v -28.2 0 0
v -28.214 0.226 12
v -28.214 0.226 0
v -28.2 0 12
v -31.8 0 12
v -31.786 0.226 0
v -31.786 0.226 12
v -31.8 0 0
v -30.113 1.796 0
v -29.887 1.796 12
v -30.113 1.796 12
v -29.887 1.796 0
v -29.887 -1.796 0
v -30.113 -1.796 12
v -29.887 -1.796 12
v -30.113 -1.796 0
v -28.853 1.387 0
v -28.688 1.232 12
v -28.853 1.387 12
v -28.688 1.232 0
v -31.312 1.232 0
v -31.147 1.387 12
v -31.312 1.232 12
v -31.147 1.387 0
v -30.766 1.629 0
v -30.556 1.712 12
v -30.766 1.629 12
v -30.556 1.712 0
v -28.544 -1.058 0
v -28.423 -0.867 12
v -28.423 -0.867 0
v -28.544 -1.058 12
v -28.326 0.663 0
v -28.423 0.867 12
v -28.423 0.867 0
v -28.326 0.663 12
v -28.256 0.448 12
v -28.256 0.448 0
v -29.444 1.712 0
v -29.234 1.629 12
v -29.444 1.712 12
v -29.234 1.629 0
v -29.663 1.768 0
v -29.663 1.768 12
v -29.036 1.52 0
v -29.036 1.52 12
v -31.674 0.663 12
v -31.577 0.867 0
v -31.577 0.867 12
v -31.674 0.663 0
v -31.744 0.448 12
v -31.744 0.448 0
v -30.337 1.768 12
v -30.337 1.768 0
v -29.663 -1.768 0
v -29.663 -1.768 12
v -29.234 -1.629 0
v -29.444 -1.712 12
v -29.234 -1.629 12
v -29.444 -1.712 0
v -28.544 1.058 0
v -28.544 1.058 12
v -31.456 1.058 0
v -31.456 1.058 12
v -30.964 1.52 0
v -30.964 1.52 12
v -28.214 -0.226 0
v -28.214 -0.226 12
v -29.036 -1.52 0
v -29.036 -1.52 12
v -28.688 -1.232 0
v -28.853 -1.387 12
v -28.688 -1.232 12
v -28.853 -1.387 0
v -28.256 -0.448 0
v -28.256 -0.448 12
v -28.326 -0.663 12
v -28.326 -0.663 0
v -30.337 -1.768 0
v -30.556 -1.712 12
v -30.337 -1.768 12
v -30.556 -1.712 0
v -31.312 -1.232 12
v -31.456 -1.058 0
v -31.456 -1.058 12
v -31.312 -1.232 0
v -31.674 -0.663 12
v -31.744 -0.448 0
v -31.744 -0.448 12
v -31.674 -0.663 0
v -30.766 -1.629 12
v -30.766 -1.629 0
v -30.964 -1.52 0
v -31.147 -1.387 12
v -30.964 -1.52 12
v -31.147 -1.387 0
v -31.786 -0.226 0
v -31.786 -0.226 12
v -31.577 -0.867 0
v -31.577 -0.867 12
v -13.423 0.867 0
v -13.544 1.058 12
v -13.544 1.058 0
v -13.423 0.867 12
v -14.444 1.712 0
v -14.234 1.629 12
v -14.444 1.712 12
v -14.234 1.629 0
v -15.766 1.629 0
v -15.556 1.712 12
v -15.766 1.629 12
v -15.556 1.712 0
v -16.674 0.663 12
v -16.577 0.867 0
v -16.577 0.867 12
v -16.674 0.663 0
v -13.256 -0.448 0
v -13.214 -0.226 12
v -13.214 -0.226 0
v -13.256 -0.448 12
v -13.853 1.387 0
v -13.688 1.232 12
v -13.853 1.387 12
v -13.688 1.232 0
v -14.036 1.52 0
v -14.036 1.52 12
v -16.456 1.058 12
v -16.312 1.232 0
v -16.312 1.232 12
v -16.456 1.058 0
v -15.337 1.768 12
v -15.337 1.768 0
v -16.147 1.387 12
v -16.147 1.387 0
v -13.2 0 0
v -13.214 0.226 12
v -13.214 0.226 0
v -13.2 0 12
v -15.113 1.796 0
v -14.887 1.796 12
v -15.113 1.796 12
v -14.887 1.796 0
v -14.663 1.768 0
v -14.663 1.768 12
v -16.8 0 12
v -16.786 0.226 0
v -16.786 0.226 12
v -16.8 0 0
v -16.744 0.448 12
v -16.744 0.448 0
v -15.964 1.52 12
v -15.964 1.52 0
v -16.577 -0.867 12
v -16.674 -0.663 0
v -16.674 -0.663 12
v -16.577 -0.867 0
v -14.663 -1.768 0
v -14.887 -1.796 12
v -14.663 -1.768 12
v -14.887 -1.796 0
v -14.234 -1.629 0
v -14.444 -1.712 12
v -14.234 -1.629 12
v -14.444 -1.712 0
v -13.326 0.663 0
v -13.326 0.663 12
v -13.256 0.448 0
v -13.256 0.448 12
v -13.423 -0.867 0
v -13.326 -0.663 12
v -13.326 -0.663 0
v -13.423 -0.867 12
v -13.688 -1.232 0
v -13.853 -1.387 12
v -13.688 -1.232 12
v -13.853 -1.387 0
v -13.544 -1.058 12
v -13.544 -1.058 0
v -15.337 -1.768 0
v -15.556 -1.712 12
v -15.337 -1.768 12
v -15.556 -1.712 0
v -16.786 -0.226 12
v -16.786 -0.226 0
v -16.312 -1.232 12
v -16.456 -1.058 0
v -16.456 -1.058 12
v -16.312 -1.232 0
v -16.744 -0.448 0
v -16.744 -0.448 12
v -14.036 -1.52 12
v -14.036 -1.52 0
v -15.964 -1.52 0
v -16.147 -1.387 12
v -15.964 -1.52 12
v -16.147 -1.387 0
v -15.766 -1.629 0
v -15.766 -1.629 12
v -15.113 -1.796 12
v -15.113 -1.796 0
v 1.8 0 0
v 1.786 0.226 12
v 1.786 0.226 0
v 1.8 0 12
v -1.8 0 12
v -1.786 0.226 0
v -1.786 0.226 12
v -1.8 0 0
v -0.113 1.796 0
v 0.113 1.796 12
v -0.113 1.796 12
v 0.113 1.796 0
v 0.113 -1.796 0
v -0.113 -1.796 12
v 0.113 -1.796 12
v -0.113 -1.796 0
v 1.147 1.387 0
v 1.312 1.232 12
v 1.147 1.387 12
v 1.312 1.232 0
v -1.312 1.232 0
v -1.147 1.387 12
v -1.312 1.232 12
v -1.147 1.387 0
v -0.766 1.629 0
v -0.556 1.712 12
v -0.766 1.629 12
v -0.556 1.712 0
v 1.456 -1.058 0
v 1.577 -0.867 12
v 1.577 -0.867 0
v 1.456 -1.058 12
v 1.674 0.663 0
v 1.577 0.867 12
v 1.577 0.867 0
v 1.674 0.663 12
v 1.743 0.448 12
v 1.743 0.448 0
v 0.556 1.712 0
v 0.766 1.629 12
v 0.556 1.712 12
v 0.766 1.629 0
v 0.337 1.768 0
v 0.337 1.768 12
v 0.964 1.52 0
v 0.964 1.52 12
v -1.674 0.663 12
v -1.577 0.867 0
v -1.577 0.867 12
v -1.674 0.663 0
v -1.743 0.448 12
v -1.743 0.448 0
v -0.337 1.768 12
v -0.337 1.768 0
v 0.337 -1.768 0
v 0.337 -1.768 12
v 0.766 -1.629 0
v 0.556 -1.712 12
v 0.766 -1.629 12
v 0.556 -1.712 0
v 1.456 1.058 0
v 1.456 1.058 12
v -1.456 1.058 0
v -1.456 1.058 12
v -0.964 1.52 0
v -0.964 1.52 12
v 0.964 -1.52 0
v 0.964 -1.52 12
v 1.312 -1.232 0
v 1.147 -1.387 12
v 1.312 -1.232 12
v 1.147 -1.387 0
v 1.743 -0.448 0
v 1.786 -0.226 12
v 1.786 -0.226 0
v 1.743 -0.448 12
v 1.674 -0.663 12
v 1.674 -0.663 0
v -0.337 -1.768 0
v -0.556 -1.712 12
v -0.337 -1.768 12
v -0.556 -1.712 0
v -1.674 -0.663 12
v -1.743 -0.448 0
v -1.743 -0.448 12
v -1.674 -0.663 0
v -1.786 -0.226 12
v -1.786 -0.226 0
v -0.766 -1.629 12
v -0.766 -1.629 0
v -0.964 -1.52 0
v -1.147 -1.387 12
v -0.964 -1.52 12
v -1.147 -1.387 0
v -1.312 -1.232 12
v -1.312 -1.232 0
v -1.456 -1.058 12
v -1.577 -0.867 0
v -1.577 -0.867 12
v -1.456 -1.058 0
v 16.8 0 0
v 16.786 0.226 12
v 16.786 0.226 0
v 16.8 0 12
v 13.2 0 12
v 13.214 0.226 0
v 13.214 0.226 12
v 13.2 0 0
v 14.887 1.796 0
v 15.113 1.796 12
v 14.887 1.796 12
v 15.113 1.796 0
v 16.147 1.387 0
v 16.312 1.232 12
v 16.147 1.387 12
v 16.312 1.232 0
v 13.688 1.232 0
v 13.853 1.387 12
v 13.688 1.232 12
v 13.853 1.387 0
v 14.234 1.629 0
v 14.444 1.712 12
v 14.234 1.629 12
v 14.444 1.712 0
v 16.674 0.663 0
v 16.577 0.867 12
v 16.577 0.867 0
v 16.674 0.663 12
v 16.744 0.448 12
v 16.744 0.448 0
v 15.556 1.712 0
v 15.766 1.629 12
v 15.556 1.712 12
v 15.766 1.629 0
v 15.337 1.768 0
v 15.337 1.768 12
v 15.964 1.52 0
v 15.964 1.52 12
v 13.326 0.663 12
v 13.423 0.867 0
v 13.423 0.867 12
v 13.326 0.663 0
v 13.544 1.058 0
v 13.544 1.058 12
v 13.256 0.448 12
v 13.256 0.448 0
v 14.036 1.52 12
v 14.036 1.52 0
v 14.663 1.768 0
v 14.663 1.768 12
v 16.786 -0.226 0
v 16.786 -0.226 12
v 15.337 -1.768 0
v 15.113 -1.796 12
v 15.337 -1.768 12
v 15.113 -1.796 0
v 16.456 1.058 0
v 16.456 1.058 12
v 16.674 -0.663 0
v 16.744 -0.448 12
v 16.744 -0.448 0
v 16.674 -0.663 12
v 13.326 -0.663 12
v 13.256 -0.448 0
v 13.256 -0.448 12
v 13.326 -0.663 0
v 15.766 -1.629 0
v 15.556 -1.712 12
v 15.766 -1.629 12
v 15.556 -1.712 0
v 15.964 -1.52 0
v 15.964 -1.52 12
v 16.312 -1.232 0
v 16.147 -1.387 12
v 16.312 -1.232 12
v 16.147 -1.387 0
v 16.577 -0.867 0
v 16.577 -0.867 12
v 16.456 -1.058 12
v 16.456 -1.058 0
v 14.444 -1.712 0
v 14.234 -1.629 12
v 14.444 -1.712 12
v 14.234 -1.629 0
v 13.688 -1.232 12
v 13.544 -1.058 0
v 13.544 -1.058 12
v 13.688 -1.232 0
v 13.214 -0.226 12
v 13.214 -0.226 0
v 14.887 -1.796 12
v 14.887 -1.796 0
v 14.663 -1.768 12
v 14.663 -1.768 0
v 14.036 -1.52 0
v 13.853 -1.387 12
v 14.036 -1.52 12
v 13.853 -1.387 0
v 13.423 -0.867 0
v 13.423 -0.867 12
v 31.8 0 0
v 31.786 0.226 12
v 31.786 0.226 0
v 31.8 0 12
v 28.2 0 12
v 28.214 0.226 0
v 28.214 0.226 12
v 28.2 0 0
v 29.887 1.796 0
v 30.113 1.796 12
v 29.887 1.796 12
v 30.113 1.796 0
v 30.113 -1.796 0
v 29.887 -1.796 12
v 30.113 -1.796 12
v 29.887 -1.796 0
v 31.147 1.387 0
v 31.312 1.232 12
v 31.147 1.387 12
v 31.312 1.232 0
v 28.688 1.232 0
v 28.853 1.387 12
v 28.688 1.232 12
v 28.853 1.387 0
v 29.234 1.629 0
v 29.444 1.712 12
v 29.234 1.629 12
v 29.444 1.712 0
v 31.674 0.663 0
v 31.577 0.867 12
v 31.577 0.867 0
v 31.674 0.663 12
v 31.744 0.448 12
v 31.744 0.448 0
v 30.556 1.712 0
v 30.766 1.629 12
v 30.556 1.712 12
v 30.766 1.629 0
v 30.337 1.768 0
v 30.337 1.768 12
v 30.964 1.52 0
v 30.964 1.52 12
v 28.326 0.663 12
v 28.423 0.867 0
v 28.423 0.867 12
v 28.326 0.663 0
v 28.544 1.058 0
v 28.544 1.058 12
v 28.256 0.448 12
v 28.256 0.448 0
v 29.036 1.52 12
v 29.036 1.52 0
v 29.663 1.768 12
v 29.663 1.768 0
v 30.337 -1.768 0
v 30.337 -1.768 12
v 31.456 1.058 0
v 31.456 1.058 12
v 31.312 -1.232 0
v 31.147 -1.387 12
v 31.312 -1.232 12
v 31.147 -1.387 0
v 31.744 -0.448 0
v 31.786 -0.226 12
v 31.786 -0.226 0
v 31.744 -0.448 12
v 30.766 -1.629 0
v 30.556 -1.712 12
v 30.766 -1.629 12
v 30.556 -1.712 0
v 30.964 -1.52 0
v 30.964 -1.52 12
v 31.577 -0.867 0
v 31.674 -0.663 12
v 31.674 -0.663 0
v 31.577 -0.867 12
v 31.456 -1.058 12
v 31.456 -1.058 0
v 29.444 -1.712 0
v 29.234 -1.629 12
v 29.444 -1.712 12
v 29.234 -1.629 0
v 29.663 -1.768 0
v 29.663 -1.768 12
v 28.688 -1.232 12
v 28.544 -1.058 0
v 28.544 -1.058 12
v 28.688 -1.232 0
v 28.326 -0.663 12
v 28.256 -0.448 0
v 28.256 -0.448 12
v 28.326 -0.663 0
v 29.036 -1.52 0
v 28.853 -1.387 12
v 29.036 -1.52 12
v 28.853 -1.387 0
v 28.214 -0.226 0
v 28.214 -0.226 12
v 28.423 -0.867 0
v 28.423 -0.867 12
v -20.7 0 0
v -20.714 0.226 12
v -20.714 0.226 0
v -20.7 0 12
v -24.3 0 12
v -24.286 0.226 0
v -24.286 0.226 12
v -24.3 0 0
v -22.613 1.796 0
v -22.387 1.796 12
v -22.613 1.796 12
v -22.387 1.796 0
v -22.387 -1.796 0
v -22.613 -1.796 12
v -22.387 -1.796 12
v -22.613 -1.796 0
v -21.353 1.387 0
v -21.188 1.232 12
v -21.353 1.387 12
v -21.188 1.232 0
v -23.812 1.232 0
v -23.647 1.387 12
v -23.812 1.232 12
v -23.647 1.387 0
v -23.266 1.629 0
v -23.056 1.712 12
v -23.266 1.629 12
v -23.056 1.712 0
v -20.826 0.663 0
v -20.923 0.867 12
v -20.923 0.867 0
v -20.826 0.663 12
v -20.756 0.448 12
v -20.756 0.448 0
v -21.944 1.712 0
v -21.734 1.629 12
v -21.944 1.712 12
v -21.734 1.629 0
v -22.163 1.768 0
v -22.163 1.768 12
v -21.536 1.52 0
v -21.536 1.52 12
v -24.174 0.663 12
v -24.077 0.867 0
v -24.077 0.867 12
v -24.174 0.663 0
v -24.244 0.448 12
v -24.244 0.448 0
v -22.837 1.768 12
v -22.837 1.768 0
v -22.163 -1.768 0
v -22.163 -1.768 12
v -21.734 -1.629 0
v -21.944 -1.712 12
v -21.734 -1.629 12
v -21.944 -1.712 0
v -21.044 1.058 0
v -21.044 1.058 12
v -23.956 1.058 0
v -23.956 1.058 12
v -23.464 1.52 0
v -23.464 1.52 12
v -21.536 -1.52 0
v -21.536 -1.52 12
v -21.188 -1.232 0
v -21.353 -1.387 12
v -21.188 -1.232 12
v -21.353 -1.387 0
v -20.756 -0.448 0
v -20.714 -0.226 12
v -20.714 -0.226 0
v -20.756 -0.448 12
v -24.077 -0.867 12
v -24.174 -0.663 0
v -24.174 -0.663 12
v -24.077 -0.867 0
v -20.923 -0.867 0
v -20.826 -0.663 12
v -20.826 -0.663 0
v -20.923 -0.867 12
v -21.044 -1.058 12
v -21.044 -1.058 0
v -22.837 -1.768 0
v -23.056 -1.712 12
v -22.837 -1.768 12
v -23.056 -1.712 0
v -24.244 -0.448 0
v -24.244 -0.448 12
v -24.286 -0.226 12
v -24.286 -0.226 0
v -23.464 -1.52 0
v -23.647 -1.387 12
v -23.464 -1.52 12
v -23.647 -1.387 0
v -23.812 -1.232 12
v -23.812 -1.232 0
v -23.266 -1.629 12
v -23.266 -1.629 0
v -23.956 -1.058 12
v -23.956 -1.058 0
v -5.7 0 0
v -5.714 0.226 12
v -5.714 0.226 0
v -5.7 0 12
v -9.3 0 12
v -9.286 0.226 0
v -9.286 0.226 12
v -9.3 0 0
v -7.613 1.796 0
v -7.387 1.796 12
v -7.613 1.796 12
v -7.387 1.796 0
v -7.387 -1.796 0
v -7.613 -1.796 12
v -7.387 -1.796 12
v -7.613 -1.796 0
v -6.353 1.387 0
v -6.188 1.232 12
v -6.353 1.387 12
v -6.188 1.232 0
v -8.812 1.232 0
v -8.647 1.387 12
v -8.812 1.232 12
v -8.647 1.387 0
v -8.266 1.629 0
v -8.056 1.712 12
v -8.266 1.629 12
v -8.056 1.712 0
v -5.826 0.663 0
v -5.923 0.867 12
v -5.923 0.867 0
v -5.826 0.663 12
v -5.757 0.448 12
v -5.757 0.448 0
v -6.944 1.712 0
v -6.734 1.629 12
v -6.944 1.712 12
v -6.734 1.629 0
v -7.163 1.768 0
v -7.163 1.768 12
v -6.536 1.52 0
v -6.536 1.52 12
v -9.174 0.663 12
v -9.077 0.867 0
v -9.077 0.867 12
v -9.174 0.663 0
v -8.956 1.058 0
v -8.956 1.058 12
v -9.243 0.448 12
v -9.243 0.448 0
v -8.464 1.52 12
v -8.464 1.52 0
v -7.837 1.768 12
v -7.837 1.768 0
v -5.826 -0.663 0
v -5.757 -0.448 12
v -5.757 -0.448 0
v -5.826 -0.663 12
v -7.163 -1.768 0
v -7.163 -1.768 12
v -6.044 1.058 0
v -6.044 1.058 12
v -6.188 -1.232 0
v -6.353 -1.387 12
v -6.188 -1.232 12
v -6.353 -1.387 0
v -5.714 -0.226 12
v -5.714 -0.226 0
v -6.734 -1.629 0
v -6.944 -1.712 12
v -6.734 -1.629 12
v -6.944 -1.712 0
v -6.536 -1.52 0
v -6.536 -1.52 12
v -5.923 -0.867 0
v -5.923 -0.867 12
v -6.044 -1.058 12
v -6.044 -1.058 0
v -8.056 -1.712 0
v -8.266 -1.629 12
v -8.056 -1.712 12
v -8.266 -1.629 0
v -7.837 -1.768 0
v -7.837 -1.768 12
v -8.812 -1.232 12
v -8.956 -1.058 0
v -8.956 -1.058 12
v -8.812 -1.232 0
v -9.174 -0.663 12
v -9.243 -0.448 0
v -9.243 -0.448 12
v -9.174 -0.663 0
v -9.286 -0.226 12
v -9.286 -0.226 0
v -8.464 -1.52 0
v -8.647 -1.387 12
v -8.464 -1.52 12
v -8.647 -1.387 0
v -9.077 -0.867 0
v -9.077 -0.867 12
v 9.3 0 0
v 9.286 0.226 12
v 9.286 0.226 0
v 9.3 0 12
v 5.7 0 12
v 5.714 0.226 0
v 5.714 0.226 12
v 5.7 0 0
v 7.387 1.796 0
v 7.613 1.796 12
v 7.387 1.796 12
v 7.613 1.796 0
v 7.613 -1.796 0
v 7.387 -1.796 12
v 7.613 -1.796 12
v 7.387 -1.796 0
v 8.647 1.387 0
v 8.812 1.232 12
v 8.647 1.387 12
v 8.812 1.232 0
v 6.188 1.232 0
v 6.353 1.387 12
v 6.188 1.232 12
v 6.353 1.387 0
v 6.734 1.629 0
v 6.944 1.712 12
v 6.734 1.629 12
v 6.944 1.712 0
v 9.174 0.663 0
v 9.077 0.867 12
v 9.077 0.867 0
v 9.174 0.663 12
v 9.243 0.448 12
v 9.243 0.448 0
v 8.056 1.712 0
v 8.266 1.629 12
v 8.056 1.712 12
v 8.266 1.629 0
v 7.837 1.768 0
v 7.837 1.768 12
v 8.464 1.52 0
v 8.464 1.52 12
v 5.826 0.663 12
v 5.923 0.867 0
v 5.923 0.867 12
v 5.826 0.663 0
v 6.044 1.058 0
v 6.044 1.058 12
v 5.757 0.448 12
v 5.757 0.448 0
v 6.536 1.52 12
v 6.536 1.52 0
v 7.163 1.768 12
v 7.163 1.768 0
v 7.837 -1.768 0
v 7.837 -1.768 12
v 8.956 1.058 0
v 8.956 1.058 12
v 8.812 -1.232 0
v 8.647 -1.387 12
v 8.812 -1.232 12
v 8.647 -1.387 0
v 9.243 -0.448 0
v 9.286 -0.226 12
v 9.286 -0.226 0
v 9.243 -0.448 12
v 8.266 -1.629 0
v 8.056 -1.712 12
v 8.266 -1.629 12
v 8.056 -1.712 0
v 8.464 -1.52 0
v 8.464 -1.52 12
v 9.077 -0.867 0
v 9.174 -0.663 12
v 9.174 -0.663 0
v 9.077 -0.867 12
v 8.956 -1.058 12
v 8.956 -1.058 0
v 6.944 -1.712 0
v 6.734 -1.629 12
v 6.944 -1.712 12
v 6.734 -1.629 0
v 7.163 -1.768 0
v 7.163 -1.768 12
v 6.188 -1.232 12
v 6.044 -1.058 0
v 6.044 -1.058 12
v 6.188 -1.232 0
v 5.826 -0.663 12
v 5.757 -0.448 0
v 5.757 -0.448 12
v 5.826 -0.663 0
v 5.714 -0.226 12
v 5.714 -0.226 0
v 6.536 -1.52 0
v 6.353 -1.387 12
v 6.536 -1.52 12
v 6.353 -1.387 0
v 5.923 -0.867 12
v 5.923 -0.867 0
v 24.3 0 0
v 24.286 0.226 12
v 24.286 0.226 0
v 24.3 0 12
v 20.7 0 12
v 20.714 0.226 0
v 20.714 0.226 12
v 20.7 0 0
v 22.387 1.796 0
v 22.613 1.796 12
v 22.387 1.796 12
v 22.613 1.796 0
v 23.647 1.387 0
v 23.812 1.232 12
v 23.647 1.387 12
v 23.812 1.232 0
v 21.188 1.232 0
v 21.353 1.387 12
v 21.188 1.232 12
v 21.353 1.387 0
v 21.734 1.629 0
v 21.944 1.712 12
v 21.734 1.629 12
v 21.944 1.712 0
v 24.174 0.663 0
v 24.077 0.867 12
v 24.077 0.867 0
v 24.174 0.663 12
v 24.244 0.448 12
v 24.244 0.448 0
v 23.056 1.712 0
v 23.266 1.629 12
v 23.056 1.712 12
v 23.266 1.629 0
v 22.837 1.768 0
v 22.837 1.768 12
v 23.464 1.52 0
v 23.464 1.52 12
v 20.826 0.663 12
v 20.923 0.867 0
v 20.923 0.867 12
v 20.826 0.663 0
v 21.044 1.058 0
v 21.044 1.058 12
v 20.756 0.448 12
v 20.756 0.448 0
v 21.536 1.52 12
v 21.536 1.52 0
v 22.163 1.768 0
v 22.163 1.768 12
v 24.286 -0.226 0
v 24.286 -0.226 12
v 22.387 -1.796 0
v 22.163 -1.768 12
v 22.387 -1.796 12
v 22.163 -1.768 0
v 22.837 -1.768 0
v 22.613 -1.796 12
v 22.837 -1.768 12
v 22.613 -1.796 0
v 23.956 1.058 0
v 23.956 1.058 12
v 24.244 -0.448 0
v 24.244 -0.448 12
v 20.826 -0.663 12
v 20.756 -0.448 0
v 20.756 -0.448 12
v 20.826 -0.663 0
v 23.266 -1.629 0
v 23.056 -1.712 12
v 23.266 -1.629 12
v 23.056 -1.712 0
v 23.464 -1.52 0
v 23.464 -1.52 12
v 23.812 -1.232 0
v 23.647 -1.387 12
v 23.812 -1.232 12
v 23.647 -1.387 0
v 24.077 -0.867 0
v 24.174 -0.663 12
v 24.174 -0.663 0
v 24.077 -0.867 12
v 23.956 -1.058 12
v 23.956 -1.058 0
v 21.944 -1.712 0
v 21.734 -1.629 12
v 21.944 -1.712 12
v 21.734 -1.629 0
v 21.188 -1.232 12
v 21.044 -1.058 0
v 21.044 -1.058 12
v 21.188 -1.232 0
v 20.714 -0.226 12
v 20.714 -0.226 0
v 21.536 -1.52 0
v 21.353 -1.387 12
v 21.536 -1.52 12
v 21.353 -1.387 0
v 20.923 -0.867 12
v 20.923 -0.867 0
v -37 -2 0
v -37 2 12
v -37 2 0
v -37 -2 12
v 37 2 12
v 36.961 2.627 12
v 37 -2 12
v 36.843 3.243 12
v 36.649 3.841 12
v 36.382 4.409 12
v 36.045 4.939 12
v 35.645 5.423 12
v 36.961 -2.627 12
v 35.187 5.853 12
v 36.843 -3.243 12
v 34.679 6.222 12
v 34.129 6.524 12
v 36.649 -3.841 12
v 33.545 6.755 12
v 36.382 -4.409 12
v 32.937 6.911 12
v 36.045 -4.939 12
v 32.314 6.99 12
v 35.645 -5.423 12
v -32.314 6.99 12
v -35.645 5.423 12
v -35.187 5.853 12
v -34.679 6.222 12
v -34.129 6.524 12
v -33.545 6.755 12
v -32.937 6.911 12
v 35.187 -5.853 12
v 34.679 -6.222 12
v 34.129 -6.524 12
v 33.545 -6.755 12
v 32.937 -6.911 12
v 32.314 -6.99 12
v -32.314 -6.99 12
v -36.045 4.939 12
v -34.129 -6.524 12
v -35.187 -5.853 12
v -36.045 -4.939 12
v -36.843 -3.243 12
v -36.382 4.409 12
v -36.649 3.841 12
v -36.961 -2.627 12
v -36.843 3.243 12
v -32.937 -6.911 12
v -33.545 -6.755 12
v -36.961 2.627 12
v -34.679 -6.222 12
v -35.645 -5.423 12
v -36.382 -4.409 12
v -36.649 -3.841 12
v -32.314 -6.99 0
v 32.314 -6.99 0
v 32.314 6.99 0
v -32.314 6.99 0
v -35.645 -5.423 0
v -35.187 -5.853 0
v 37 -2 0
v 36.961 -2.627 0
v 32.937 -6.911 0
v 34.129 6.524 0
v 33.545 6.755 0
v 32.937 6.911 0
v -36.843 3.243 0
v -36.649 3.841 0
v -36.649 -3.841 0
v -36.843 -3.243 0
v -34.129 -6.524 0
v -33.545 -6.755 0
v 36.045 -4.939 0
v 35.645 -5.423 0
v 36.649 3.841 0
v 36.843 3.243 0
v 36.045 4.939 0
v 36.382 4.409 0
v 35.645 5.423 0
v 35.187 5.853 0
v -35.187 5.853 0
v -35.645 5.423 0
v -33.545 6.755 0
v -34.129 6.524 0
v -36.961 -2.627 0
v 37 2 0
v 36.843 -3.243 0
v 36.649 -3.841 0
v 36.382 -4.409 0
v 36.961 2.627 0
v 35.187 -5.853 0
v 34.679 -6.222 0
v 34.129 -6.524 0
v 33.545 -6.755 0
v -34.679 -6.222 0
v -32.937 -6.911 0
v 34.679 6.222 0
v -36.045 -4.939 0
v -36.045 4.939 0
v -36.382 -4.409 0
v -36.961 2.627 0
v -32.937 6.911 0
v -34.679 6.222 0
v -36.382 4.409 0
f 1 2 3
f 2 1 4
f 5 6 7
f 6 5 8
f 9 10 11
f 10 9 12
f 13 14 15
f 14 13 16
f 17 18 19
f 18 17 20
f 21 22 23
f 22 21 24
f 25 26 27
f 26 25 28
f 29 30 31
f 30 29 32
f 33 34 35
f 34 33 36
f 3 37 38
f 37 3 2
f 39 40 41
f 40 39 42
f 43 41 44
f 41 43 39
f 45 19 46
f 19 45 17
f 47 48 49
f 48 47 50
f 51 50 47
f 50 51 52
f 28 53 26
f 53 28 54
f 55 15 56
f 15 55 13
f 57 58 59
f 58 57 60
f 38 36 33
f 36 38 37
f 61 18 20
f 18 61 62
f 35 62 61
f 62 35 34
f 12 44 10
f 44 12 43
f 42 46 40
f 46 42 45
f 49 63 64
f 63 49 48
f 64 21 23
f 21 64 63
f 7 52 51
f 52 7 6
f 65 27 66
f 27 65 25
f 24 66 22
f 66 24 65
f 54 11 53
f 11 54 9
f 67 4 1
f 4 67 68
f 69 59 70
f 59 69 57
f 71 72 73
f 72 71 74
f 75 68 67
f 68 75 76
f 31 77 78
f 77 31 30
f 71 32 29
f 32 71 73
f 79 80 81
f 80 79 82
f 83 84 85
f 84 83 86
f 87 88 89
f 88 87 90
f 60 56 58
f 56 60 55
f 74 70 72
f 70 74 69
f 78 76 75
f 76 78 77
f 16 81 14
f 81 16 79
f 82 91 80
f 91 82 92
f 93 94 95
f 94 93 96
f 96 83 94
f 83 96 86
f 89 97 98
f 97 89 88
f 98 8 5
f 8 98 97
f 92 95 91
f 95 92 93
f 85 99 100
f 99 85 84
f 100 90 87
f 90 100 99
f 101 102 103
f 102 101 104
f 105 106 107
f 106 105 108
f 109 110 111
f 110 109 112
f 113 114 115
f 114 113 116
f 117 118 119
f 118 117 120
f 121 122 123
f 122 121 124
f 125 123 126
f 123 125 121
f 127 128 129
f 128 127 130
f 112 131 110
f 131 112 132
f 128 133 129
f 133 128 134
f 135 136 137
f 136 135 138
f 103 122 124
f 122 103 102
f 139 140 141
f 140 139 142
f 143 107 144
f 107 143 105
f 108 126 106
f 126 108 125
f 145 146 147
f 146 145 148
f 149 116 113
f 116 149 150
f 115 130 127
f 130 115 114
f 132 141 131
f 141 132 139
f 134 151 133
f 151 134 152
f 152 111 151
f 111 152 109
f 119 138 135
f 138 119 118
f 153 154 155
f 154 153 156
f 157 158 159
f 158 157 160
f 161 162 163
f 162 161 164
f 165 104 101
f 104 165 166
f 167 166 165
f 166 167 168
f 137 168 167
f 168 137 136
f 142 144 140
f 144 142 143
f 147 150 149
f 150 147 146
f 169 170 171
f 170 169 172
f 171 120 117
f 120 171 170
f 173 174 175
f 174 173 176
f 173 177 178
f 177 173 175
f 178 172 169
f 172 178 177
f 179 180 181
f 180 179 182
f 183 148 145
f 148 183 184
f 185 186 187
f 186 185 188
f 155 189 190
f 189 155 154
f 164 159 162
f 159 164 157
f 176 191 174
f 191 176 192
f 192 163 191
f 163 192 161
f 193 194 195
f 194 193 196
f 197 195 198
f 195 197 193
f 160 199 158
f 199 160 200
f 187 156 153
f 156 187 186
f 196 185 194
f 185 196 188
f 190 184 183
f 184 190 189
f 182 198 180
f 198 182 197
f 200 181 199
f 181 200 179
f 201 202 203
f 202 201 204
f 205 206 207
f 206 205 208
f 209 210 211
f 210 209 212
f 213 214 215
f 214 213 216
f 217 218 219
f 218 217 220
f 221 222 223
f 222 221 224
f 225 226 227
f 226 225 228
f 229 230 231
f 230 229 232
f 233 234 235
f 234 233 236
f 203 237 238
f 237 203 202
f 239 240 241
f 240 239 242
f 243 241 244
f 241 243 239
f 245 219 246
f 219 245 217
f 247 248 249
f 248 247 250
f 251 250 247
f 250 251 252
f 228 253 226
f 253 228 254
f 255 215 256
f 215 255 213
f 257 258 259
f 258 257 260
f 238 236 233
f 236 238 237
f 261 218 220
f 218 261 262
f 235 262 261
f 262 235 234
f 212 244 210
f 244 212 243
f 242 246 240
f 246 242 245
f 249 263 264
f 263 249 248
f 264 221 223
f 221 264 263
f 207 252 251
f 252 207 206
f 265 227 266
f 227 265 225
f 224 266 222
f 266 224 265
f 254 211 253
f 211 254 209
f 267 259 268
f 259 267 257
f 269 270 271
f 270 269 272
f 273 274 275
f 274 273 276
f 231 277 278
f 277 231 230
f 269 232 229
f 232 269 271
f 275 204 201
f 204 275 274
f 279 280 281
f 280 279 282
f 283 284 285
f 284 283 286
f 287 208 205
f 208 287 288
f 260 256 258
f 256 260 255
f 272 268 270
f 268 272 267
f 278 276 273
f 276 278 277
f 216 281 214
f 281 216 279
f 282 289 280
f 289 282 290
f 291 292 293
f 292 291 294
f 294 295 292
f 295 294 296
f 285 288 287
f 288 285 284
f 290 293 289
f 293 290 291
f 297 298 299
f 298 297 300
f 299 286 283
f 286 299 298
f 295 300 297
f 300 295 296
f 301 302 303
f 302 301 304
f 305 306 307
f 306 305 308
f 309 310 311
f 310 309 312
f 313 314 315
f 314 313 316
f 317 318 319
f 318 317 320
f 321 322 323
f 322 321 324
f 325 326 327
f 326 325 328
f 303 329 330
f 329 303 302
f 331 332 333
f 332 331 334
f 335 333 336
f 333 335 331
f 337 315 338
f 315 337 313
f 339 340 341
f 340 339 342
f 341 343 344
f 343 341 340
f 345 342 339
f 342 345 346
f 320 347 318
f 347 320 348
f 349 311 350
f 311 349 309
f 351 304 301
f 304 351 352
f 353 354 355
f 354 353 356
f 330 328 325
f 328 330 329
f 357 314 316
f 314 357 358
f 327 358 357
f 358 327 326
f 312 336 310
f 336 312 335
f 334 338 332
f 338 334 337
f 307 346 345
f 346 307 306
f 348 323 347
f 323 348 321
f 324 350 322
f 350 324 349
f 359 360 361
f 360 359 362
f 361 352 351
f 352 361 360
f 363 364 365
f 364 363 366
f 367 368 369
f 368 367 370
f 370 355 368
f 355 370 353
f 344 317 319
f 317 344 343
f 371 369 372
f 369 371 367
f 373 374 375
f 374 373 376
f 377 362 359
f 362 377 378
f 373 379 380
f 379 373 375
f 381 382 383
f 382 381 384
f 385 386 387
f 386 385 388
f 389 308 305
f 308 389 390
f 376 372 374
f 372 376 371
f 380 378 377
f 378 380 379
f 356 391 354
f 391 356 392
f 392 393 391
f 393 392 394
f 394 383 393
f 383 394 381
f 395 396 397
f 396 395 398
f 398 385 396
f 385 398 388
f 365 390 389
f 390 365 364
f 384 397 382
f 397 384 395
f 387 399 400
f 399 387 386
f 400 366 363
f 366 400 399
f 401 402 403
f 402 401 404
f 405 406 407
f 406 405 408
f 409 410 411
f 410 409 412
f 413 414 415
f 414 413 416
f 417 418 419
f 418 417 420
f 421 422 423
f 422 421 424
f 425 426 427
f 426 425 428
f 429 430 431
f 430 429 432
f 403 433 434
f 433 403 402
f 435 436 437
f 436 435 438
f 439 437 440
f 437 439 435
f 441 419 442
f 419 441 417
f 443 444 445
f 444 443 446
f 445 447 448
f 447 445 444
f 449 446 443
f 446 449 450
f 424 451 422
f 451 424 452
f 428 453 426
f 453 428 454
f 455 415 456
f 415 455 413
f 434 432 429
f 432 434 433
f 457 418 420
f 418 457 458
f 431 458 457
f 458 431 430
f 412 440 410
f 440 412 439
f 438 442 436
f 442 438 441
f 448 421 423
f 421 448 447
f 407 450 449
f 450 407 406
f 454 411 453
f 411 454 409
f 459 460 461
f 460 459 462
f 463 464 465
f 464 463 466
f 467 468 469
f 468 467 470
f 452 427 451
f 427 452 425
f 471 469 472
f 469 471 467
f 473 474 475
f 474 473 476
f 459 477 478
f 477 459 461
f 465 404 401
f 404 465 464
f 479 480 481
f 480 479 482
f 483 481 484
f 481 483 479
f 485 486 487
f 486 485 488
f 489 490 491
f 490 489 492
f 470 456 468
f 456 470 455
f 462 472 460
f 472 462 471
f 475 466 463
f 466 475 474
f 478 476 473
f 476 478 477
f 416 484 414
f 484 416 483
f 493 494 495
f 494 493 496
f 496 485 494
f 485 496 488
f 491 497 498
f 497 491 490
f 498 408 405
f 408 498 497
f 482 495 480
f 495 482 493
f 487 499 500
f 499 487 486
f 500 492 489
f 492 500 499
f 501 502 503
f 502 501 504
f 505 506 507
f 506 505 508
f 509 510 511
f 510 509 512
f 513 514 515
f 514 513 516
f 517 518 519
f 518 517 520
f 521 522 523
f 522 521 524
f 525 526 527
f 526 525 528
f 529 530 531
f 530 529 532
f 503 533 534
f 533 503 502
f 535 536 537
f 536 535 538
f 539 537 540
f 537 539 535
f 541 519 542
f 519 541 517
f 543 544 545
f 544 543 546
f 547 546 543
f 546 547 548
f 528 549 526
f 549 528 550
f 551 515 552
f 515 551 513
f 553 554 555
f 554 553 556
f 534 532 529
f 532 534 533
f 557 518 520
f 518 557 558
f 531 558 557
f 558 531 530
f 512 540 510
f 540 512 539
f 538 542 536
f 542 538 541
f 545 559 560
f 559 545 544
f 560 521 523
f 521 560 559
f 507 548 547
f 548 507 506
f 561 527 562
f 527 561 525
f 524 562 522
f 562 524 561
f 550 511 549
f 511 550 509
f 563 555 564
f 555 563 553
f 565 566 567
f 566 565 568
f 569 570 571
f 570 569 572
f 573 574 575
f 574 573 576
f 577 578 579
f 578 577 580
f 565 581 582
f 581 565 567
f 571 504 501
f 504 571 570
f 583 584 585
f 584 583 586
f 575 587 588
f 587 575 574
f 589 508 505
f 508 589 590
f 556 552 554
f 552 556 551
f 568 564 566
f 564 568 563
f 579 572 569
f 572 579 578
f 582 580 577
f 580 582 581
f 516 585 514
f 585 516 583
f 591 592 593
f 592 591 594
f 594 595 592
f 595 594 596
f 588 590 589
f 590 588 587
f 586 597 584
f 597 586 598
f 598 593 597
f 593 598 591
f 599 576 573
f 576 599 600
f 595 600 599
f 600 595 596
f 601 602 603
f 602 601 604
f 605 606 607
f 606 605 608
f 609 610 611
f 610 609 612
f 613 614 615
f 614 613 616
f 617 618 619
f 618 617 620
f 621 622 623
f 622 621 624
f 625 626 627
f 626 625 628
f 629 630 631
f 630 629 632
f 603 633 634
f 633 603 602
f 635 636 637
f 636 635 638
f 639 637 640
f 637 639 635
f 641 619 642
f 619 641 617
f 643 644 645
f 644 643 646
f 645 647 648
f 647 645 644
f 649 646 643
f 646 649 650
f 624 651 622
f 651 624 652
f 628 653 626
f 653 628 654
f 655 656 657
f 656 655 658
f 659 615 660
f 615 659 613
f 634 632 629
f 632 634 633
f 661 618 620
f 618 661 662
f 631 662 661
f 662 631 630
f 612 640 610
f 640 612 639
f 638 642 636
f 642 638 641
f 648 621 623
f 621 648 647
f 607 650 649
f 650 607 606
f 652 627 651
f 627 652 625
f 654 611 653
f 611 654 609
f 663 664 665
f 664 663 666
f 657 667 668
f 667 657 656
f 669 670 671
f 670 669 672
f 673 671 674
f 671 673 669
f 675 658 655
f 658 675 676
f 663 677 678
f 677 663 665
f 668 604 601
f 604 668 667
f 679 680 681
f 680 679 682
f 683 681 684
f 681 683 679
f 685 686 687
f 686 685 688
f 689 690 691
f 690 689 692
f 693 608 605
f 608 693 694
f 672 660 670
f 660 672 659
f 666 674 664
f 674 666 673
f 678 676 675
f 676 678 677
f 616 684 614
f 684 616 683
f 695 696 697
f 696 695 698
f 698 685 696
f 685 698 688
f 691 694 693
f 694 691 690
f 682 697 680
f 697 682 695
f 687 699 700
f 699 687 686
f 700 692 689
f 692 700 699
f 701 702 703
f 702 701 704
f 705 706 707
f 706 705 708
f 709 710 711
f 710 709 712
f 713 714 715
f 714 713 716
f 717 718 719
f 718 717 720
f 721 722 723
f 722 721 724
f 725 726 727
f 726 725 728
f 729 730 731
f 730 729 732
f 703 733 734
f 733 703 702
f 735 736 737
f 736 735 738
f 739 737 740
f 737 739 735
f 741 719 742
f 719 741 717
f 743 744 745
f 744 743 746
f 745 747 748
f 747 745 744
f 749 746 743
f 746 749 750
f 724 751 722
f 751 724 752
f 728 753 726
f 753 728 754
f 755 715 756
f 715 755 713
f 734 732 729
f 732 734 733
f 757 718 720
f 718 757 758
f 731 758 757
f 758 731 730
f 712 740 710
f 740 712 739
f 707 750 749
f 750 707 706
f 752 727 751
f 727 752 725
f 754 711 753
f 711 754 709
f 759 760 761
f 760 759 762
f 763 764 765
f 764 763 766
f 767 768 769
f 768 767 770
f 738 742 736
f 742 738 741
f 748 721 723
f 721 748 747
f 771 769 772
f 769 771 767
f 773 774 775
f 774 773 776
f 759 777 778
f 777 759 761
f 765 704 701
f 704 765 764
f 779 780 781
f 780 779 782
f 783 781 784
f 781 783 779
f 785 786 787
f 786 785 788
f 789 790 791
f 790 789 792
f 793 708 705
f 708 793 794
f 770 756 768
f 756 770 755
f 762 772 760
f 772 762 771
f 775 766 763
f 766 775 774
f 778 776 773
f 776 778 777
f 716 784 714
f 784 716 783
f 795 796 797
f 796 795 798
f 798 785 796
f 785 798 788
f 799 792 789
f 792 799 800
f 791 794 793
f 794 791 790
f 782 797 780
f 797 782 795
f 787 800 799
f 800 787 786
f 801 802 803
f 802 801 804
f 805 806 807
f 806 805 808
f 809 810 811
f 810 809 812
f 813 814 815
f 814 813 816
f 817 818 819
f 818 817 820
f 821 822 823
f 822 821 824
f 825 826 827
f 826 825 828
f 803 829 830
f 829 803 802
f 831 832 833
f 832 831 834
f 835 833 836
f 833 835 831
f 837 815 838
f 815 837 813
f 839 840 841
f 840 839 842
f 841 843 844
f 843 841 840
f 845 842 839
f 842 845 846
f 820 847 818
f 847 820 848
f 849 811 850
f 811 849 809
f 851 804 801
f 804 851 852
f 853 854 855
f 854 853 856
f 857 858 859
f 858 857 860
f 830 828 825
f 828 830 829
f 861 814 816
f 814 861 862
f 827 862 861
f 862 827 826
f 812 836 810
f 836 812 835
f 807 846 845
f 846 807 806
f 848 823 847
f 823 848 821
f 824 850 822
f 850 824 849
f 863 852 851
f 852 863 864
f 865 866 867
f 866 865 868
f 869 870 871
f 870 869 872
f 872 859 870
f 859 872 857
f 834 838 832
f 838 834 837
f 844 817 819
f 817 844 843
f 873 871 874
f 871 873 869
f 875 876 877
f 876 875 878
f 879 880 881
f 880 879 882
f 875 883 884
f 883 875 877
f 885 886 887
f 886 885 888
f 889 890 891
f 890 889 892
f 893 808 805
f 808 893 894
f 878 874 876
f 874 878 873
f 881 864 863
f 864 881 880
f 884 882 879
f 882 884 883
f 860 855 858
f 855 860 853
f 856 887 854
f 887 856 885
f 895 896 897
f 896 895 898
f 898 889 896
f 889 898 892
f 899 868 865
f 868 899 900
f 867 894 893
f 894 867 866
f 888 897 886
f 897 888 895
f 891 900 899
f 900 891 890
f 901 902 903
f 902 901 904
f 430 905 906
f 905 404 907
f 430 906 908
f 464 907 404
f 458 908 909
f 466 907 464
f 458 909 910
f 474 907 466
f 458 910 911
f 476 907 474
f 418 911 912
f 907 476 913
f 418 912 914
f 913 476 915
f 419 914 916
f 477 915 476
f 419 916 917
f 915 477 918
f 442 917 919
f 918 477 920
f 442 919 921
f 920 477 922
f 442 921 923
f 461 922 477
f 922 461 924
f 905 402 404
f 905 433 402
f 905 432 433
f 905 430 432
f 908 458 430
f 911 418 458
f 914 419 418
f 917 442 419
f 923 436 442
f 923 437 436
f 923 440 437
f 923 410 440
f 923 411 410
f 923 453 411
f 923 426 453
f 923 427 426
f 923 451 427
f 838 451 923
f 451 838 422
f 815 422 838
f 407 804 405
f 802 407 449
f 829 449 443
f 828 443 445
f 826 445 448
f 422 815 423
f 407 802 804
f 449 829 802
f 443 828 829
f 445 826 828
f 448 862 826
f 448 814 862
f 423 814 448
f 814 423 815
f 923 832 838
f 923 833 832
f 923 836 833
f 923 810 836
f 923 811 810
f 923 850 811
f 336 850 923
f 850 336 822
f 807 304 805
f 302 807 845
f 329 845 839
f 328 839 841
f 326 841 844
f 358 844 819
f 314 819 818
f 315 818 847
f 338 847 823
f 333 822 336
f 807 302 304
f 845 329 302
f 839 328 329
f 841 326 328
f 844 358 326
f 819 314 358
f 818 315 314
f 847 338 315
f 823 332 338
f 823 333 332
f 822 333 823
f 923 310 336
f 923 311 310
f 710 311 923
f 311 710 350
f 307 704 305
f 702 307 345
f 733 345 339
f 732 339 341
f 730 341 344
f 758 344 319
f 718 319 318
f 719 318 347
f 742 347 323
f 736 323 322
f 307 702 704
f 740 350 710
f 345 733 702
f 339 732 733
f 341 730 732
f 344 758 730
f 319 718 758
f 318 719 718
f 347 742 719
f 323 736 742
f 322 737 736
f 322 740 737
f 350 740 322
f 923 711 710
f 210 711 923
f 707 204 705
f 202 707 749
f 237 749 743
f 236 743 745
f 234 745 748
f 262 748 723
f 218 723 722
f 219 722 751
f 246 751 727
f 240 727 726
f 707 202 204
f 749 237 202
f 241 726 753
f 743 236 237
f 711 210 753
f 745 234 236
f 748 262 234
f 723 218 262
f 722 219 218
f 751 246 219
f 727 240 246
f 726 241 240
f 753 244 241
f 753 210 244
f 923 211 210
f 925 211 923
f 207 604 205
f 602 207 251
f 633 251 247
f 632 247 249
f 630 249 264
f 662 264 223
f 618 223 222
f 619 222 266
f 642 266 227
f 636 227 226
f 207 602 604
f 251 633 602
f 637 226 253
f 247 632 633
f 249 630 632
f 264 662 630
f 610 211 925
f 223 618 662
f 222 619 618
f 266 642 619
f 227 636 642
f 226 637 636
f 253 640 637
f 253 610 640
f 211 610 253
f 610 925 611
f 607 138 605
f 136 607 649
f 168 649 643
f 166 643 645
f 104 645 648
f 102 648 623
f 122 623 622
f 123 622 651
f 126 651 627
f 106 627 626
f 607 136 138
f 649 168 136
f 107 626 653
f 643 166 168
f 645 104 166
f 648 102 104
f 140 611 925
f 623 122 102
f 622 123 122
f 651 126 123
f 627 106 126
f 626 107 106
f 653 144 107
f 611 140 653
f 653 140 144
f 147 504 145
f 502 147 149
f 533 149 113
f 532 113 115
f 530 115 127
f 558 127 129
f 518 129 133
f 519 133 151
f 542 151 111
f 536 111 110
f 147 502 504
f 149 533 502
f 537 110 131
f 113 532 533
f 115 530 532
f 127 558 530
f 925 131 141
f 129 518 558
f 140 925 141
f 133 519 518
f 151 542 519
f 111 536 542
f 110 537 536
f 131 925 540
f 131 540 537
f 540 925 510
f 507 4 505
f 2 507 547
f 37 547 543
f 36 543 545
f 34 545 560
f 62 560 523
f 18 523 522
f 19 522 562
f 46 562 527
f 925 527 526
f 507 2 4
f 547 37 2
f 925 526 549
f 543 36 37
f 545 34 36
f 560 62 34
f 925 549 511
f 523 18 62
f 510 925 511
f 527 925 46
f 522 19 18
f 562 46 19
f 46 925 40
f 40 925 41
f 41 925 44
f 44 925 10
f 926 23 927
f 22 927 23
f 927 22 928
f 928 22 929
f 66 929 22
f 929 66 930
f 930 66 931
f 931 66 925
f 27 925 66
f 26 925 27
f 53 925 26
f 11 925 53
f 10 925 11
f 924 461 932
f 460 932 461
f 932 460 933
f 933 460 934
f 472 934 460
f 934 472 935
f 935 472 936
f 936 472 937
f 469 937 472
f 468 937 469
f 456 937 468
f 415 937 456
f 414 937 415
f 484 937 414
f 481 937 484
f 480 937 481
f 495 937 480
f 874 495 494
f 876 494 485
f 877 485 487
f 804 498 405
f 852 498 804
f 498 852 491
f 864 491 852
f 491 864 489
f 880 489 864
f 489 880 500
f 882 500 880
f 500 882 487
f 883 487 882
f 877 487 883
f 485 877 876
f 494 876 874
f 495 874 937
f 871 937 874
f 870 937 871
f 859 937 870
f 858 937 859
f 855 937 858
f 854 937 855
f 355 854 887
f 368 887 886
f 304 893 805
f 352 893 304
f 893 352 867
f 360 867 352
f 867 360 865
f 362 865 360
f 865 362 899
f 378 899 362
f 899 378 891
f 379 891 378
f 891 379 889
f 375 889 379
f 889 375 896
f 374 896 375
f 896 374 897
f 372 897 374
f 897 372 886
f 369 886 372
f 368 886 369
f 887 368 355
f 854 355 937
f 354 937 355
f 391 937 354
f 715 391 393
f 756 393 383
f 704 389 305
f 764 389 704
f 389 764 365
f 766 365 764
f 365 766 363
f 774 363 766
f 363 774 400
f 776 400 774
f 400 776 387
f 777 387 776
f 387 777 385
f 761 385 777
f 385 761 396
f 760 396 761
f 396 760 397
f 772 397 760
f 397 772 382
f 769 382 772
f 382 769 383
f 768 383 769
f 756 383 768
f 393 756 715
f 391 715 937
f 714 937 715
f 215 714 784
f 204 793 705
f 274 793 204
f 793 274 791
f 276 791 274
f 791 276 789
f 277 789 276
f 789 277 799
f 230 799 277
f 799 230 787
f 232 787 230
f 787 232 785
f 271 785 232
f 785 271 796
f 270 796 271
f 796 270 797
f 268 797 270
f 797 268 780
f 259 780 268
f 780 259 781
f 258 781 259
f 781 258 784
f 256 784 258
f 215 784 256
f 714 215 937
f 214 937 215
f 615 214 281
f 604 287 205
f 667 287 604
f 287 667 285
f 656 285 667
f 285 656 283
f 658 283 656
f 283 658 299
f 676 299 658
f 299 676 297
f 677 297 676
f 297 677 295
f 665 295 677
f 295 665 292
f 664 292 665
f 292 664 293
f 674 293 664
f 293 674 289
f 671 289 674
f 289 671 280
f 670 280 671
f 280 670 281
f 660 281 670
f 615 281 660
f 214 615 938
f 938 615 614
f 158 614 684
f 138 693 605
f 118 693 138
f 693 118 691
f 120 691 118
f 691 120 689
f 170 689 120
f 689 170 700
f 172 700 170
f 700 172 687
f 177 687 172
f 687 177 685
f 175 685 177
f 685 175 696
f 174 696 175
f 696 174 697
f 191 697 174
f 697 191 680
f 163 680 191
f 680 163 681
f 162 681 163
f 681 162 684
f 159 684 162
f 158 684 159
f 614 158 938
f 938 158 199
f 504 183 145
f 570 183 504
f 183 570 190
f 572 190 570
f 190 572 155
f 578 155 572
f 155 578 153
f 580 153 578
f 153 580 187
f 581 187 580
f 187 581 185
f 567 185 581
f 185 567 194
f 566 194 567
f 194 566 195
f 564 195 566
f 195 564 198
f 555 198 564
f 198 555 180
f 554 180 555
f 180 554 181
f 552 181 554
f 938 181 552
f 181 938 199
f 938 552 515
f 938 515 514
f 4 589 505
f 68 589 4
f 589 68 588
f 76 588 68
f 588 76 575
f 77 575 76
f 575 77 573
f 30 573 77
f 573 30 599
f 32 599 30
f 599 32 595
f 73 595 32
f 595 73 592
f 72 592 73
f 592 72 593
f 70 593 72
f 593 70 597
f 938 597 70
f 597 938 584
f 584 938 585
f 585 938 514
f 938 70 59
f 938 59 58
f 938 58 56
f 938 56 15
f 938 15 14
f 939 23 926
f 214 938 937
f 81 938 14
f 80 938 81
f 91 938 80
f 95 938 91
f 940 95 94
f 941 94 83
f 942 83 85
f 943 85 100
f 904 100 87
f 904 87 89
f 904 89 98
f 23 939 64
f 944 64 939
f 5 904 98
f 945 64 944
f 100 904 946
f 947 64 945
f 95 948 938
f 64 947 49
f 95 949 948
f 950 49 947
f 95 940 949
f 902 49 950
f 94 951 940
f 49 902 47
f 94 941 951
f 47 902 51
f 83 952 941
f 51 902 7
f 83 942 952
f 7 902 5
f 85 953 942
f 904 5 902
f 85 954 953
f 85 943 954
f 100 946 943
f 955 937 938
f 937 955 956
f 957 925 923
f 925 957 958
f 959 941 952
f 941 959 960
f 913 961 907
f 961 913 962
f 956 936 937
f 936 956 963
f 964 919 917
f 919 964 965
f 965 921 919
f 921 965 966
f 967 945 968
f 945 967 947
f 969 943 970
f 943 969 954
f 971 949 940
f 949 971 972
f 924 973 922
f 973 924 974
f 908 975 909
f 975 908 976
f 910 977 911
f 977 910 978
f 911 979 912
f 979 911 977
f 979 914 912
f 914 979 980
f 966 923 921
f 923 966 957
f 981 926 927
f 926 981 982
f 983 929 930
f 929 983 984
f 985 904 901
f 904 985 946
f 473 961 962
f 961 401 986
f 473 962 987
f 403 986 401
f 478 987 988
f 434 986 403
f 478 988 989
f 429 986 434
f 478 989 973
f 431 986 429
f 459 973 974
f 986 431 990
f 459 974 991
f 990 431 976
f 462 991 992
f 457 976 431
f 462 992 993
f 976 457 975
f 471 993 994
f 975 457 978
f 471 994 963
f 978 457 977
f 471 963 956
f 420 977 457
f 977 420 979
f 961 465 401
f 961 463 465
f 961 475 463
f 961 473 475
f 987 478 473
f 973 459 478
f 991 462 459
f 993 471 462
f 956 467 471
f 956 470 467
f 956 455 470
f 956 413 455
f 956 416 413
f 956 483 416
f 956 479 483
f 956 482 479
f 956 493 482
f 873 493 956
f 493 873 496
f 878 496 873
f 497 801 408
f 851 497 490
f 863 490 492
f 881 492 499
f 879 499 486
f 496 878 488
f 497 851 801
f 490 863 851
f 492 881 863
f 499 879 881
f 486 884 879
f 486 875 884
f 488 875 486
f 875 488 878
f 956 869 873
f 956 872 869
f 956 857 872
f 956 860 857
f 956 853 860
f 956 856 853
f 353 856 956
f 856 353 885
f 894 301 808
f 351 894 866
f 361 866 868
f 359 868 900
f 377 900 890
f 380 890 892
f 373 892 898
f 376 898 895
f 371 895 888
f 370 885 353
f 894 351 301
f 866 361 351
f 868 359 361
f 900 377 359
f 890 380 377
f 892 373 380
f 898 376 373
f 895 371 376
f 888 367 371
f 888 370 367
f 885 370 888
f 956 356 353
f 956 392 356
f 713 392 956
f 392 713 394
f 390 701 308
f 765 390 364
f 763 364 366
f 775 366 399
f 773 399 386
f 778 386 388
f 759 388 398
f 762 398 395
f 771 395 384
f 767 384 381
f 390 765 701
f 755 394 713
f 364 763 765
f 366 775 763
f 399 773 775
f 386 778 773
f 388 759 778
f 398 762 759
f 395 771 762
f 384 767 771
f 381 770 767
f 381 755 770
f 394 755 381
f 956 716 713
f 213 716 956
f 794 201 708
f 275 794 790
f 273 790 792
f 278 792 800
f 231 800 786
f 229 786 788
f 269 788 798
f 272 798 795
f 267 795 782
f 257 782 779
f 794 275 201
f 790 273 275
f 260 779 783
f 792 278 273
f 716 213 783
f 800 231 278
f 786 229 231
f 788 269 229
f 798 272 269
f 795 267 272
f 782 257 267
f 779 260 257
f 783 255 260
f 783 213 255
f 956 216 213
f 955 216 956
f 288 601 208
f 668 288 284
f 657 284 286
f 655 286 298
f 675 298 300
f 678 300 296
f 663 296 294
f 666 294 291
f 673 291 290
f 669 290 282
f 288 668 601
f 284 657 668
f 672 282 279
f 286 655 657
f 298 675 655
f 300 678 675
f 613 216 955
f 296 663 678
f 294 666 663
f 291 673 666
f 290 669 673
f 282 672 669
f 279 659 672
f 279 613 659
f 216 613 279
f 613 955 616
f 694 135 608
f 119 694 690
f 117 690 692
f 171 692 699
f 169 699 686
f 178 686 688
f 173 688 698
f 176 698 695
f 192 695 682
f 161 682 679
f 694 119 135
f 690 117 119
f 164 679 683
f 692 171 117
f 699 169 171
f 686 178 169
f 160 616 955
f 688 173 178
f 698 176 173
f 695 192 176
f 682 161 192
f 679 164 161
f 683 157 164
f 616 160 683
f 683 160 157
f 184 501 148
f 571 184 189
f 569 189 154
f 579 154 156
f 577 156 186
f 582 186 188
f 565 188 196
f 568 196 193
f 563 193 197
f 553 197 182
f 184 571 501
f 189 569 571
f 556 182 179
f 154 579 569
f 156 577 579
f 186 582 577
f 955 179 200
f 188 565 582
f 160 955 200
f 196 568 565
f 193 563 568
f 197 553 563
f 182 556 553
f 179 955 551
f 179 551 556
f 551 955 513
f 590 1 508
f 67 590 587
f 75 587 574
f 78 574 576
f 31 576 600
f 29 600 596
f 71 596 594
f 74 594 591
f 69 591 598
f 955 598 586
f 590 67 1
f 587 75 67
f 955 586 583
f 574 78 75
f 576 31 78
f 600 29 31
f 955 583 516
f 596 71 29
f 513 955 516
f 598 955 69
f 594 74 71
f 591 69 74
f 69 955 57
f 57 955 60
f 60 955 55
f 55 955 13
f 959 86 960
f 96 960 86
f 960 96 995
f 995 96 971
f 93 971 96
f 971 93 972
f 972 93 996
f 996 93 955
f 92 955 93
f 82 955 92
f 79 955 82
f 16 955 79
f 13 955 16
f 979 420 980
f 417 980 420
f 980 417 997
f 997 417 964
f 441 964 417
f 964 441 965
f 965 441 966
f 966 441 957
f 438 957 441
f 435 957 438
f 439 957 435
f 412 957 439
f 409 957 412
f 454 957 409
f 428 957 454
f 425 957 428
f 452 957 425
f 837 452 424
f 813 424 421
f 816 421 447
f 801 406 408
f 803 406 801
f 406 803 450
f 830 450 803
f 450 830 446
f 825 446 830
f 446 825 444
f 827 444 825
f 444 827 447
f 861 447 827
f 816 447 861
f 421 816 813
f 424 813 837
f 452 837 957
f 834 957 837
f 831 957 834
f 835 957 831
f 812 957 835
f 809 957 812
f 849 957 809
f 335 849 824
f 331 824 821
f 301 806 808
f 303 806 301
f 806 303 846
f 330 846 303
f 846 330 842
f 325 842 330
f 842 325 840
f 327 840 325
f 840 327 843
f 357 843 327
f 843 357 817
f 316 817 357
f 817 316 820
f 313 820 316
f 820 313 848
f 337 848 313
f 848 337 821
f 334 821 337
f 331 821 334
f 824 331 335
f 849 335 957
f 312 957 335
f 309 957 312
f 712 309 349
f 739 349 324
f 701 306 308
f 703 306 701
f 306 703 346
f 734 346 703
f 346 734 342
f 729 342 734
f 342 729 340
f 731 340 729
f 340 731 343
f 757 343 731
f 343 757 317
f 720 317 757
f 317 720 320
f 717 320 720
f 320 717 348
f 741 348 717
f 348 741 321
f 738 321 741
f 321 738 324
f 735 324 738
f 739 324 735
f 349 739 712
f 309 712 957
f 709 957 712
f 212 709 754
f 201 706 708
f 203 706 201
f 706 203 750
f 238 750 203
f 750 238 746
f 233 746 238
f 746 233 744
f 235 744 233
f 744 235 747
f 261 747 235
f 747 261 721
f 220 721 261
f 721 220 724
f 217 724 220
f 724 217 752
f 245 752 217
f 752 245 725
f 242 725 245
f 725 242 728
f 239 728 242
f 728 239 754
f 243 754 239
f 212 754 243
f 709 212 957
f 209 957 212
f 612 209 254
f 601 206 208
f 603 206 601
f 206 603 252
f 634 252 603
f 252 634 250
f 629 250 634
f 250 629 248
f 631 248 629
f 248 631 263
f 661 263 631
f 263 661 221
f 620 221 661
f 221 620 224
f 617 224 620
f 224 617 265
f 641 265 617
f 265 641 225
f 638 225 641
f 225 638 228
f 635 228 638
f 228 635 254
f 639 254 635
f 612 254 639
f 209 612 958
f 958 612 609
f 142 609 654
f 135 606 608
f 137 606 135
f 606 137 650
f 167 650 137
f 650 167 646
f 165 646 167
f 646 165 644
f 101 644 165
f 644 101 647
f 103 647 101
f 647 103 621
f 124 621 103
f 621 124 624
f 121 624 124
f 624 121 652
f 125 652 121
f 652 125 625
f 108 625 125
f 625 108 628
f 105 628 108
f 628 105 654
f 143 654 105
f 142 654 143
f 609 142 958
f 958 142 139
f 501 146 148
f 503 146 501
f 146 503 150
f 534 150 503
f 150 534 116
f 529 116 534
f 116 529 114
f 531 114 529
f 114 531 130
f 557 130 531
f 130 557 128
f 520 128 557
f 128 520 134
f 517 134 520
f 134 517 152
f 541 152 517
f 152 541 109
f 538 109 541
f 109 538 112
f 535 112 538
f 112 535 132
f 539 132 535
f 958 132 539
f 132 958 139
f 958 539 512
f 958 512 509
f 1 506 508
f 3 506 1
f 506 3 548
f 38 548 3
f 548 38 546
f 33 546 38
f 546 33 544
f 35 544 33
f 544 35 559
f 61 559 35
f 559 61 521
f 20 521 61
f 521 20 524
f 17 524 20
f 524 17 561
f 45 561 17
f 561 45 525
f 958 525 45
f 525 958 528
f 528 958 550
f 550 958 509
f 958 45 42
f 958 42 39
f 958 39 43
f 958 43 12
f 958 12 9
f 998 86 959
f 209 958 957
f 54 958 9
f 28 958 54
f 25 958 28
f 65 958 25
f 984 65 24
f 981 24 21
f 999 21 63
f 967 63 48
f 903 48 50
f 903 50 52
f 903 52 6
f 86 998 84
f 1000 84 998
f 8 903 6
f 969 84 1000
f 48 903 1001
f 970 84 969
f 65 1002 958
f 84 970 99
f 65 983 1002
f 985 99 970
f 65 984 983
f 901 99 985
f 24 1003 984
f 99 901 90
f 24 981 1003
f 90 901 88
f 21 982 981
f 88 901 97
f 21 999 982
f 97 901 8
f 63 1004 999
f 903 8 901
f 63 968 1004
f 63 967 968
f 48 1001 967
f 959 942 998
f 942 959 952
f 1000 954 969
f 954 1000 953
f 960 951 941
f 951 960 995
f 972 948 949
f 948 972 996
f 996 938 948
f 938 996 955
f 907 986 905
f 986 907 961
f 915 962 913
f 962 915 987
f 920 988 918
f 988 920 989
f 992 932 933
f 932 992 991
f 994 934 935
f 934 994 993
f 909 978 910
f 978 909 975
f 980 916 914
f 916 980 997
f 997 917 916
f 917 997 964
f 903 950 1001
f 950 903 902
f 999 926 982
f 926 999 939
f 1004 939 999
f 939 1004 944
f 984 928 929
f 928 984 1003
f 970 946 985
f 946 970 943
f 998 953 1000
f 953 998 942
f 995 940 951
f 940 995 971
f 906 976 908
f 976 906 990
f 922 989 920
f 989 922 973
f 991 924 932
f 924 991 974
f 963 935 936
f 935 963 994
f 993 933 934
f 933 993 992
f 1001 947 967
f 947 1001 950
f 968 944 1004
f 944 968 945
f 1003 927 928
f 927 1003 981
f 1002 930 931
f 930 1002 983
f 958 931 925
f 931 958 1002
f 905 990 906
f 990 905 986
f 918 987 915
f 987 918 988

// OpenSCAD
$fn = 50;


difference() {
	union() {
		hull() {
			translate(v = [-32.0000000000, 2.0000000000, 0]) {
				cylinder(h = 12, r = 5);
			}
			translate(v = [32.0000000000, 2.0000000000, 0]) {
				cylinder(h = 12, r = 5);
			}
			translate(v = [-32.0000000000, -2.0000000000, 0]) {
				cylinder(h = 12, r = 5);
			}
			translate(v = [32.0000000000, -2.0000000000, 0]) {
				cylinder(h = 12, r = 5);
			}
		}
	}
	union() {
		translate(v = [-30.0000000000, 0.0000000000, 0]) {
			translate(v = [0, 0, -100]) {
				cylinder(h = 200, r = 1.8000000000);
			}
		}
		translate(v = [-15.0000000000, 0.0000000000, 0]) {
			translate(v = [0, 0, -100]) {
				cylinder(h = 200, r = 1.8000000000);
			}
		}
		translate(v = [0, 0, -100]) {
			cylinder(h = 200, r = 1.8000000000);
		}
		translate(v = [15.0000000000, 0.0000000000, 0]) {
			translate(v = [0, 0, -100]) {
				cylinder(h = 200, r = 1.8000000000);
			}
		}
		translate(v = [30.0000000000, 0.0000000000, 0]) {
			translate(v = [0, 0, -100]) {
				cylinder(h = 200, r = 1.8000000000);
			}
		}
		translate(v = [-30.0000000000, 0.0000000000, 0]) {
			translate(v = [0, 0, -100]) {
				cylinder(h = 200, r = 1.8000000000);
			}
		}
		translate(v = [-22.5000000000, 0.0000000000, 0]) {
			translate(v = [0, 0, -100]) {
				cylinder(h = 200, r = 1.8000000000);
			}
		}
		translate(v = [-15.0000000000, 0.0000000000, 0]) {
			translate(v = [0, 0, -100]) {
				cylinder(h = 200, r = 1.8000000000);
			}
		}
		translate(v = [-7.5000000000, 0.0000000000, 0]) {
			translate(v = [0, 0, -100]) {
				cylinder(h = 200, r = 1.8000000000);
			}
		}
		translate(v = [0, 0, -100]) {
			cylinder(h = 200, r = 1.8000000000);
		}
		translate(v = [7.5000000000, 0.0000000000, 0]) {
			translate(v = [0, 0, -100]) {
				cylinder(h = 200, r = 1.8000000000);
			}
		}
		translate(v = [15.0000000000, 0.0000000000, 0]) {
			translate(v = [0, 0, -100]) {
				cylinder(h = 200, r = 1.8000000000);
			}
		}
		translate(v = [22.5000000000, 0.0000000000, 0]) {
			translate(v = [0, 0, -100]) {
				cylinder(h = 200, r = 1.8000000000);
			}
		}
		translate(v = [30.0000000000, 0.0000000000, 0]) {
			translate(v = [0, 0, -100]) {
				cylinder(h = 200, r = 1.8000000000);
			}
		}
	}
}
